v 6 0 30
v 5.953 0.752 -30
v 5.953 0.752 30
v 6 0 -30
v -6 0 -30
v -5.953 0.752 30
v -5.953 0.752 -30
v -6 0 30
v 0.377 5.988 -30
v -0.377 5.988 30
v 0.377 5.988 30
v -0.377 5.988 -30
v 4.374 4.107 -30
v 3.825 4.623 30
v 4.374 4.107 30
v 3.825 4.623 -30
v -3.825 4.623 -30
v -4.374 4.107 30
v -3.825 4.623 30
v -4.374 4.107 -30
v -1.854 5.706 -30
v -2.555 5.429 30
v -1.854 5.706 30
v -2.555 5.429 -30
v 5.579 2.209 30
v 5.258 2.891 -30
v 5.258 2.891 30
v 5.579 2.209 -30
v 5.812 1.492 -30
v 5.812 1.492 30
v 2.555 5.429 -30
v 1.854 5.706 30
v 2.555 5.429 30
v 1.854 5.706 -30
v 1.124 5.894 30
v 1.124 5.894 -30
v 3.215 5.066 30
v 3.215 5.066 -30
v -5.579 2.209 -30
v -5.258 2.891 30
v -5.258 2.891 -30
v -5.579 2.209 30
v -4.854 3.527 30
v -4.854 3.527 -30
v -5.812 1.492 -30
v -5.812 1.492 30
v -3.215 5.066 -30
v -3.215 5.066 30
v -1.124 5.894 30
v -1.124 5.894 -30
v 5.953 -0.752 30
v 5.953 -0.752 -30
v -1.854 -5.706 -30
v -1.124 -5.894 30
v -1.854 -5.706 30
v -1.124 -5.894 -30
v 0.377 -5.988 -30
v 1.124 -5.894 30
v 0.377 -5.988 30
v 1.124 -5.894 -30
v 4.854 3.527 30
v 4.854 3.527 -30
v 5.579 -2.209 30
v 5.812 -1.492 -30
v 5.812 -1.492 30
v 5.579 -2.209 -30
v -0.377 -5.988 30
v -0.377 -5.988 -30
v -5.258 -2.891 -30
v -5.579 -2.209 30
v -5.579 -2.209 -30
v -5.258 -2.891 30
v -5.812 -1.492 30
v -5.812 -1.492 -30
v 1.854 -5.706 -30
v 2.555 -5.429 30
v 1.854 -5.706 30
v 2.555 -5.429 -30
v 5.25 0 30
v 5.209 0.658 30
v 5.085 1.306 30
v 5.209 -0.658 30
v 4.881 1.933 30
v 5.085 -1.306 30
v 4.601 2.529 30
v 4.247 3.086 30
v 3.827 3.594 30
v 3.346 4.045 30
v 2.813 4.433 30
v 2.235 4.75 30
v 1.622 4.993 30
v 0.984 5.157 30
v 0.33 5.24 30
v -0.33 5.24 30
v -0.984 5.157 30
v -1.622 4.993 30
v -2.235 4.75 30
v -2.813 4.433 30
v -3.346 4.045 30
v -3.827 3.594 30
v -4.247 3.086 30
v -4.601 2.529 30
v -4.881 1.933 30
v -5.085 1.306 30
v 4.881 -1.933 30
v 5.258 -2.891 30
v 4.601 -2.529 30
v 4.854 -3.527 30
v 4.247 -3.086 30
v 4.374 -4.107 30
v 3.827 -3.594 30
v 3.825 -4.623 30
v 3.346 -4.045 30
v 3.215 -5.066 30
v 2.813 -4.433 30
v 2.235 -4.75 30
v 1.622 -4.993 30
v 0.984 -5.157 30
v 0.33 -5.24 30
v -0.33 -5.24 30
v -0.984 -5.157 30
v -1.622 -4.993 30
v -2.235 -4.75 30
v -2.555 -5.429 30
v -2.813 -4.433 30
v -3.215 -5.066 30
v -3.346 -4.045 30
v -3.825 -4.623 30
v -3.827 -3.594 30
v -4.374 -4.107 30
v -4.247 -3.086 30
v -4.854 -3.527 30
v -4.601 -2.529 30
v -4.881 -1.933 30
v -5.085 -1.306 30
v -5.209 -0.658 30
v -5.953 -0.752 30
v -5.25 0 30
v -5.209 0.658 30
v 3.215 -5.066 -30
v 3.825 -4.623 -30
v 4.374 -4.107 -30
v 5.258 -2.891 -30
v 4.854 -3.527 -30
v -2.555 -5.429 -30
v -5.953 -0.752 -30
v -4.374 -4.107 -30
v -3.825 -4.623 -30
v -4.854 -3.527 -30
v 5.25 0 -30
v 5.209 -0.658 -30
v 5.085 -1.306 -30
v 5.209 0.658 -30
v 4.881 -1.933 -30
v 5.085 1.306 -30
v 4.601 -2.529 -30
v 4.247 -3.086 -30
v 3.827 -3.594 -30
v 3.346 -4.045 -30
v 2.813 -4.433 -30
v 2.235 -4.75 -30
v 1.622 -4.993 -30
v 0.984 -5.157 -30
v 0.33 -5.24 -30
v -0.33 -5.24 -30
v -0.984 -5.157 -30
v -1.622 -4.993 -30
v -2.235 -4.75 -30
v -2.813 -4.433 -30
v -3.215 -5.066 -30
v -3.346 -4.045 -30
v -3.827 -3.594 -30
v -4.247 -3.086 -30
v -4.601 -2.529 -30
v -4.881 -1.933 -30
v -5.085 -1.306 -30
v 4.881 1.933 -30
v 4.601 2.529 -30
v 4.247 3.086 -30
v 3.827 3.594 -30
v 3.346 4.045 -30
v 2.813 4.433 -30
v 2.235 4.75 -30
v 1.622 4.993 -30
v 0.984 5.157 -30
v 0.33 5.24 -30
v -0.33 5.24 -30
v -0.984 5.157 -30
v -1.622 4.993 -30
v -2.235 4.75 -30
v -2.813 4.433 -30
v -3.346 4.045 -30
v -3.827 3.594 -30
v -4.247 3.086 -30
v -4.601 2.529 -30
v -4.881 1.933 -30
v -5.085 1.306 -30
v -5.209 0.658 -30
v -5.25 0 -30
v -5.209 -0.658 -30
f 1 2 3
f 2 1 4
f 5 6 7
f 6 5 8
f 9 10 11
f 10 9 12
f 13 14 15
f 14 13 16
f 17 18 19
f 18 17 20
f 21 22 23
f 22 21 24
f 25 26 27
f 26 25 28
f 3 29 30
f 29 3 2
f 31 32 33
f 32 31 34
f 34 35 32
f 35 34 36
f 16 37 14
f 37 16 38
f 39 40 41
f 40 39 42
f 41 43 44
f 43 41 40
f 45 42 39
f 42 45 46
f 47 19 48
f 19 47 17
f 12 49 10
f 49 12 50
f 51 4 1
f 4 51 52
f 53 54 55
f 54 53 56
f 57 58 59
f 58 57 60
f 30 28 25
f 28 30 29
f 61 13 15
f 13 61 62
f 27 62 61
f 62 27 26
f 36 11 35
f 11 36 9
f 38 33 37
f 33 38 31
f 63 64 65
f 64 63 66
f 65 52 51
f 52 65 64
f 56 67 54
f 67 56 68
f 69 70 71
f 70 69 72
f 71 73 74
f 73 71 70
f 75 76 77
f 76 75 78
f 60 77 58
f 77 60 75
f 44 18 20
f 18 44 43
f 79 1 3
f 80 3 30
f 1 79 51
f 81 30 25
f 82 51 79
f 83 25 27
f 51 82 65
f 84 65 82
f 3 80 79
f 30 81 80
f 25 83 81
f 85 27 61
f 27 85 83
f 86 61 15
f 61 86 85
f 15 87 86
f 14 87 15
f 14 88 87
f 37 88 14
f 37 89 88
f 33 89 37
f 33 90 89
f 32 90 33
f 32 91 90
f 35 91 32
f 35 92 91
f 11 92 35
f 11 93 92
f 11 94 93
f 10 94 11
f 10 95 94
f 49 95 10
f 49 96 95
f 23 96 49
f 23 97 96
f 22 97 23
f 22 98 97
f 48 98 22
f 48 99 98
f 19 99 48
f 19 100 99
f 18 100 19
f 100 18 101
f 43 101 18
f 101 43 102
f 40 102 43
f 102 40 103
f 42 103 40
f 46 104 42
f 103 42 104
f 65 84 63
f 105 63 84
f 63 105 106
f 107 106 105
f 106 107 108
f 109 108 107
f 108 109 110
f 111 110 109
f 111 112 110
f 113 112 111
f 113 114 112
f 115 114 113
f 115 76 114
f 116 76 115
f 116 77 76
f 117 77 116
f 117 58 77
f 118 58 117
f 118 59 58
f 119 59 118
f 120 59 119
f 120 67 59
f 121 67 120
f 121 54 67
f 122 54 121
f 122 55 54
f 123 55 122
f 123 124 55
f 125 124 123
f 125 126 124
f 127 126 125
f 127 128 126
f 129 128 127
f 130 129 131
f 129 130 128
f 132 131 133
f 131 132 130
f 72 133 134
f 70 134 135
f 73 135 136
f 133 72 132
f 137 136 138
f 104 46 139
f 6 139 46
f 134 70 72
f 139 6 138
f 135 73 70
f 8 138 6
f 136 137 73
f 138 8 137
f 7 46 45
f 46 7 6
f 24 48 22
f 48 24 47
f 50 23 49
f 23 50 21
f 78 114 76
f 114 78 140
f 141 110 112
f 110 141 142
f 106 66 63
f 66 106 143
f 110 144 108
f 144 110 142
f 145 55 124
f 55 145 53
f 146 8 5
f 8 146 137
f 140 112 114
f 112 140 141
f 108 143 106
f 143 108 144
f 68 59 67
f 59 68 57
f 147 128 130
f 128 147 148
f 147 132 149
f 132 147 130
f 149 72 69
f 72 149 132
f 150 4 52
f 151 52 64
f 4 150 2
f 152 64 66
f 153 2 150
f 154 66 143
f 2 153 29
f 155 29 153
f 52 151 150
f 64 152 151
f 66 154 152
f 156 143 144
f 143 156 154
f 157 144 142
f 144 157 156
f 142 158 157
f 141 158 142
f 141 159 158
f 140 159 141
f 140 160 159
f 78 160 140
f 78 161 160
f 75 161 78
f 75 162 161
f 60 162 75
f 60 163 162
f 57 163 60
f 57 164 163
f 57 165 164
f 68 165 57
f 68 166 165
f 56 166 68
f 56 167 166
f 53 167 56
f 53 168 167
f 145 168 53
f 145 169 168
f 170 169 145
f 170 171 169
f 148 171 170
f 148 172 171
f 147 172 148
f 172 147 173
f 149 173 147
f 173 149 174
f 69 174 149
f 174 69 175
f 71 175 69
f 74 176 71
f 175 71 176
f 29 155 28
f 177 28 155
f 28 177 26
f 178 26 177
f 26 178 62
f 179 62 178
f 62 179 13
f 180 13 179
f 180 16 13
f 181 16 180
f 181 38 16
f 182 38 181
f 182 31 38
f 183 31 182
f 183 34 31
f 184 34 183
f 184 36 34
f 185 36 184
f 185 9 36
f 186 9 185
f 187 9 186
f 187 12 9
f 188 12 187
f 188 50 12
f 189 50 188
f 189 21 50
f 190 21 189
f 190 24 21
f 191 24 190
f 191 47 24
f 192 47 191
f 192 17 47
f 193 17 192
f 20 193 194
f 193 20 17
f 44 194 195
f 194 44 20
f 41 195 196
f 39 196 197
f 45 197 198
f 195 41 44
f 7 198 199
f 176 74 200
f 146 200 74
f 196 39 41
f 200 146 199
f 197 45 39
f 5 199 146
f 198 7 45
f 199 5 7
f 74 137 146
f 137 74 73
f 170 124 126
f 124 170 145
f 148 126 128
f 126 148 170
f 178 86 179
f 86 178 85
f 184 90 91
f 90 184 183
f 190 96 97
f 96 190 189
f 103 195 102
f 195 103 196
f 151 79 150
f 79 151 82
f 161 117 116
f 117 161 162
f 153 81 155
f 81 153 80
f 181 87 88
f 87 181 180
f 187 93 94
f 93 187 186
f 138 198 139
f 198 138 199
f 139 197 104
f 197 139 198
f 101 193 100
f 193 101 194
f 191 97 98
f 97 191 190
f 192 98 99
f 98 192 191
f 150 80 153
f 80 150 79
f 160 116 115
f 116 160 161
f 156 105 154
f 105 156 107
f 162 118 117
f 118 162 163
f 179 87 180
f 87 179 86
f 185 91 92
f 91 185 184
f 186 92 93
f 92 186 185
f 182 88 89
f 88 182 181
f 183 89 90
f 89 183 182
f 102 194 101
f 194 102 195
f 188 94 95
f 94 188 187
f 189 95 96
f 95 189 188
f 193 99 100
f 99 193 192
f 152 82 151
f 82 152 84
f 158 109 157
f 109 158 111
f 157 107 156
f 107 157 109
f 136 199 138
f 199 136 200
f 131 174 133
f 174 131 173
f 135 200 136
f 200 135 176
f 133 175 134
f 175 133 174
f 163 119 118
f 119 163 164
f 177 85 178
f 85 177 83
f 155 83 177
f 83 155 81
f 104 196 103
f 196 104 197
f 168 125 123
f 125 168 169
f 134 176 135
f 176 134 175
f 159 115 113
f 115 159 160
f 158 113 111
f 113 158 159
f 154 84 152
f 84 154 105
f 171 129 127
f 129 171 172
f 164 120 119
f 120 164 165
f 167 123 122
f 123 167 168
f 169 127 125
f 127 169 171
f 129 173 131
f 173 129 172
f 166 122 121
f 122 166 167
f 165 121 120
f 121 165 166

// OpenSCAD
$fn = 50;


difference() {
	union() {
		translate(v = [0, 0, -30.0000000000]) {
			cylinder(h = 60, r = 6.0000000000);
		}
	}
	union() {
		translate(v = [0, 0, -100.0000000000]) {
			cylinder(h = 200, r = 5.2500000000);
		}
	}
}
